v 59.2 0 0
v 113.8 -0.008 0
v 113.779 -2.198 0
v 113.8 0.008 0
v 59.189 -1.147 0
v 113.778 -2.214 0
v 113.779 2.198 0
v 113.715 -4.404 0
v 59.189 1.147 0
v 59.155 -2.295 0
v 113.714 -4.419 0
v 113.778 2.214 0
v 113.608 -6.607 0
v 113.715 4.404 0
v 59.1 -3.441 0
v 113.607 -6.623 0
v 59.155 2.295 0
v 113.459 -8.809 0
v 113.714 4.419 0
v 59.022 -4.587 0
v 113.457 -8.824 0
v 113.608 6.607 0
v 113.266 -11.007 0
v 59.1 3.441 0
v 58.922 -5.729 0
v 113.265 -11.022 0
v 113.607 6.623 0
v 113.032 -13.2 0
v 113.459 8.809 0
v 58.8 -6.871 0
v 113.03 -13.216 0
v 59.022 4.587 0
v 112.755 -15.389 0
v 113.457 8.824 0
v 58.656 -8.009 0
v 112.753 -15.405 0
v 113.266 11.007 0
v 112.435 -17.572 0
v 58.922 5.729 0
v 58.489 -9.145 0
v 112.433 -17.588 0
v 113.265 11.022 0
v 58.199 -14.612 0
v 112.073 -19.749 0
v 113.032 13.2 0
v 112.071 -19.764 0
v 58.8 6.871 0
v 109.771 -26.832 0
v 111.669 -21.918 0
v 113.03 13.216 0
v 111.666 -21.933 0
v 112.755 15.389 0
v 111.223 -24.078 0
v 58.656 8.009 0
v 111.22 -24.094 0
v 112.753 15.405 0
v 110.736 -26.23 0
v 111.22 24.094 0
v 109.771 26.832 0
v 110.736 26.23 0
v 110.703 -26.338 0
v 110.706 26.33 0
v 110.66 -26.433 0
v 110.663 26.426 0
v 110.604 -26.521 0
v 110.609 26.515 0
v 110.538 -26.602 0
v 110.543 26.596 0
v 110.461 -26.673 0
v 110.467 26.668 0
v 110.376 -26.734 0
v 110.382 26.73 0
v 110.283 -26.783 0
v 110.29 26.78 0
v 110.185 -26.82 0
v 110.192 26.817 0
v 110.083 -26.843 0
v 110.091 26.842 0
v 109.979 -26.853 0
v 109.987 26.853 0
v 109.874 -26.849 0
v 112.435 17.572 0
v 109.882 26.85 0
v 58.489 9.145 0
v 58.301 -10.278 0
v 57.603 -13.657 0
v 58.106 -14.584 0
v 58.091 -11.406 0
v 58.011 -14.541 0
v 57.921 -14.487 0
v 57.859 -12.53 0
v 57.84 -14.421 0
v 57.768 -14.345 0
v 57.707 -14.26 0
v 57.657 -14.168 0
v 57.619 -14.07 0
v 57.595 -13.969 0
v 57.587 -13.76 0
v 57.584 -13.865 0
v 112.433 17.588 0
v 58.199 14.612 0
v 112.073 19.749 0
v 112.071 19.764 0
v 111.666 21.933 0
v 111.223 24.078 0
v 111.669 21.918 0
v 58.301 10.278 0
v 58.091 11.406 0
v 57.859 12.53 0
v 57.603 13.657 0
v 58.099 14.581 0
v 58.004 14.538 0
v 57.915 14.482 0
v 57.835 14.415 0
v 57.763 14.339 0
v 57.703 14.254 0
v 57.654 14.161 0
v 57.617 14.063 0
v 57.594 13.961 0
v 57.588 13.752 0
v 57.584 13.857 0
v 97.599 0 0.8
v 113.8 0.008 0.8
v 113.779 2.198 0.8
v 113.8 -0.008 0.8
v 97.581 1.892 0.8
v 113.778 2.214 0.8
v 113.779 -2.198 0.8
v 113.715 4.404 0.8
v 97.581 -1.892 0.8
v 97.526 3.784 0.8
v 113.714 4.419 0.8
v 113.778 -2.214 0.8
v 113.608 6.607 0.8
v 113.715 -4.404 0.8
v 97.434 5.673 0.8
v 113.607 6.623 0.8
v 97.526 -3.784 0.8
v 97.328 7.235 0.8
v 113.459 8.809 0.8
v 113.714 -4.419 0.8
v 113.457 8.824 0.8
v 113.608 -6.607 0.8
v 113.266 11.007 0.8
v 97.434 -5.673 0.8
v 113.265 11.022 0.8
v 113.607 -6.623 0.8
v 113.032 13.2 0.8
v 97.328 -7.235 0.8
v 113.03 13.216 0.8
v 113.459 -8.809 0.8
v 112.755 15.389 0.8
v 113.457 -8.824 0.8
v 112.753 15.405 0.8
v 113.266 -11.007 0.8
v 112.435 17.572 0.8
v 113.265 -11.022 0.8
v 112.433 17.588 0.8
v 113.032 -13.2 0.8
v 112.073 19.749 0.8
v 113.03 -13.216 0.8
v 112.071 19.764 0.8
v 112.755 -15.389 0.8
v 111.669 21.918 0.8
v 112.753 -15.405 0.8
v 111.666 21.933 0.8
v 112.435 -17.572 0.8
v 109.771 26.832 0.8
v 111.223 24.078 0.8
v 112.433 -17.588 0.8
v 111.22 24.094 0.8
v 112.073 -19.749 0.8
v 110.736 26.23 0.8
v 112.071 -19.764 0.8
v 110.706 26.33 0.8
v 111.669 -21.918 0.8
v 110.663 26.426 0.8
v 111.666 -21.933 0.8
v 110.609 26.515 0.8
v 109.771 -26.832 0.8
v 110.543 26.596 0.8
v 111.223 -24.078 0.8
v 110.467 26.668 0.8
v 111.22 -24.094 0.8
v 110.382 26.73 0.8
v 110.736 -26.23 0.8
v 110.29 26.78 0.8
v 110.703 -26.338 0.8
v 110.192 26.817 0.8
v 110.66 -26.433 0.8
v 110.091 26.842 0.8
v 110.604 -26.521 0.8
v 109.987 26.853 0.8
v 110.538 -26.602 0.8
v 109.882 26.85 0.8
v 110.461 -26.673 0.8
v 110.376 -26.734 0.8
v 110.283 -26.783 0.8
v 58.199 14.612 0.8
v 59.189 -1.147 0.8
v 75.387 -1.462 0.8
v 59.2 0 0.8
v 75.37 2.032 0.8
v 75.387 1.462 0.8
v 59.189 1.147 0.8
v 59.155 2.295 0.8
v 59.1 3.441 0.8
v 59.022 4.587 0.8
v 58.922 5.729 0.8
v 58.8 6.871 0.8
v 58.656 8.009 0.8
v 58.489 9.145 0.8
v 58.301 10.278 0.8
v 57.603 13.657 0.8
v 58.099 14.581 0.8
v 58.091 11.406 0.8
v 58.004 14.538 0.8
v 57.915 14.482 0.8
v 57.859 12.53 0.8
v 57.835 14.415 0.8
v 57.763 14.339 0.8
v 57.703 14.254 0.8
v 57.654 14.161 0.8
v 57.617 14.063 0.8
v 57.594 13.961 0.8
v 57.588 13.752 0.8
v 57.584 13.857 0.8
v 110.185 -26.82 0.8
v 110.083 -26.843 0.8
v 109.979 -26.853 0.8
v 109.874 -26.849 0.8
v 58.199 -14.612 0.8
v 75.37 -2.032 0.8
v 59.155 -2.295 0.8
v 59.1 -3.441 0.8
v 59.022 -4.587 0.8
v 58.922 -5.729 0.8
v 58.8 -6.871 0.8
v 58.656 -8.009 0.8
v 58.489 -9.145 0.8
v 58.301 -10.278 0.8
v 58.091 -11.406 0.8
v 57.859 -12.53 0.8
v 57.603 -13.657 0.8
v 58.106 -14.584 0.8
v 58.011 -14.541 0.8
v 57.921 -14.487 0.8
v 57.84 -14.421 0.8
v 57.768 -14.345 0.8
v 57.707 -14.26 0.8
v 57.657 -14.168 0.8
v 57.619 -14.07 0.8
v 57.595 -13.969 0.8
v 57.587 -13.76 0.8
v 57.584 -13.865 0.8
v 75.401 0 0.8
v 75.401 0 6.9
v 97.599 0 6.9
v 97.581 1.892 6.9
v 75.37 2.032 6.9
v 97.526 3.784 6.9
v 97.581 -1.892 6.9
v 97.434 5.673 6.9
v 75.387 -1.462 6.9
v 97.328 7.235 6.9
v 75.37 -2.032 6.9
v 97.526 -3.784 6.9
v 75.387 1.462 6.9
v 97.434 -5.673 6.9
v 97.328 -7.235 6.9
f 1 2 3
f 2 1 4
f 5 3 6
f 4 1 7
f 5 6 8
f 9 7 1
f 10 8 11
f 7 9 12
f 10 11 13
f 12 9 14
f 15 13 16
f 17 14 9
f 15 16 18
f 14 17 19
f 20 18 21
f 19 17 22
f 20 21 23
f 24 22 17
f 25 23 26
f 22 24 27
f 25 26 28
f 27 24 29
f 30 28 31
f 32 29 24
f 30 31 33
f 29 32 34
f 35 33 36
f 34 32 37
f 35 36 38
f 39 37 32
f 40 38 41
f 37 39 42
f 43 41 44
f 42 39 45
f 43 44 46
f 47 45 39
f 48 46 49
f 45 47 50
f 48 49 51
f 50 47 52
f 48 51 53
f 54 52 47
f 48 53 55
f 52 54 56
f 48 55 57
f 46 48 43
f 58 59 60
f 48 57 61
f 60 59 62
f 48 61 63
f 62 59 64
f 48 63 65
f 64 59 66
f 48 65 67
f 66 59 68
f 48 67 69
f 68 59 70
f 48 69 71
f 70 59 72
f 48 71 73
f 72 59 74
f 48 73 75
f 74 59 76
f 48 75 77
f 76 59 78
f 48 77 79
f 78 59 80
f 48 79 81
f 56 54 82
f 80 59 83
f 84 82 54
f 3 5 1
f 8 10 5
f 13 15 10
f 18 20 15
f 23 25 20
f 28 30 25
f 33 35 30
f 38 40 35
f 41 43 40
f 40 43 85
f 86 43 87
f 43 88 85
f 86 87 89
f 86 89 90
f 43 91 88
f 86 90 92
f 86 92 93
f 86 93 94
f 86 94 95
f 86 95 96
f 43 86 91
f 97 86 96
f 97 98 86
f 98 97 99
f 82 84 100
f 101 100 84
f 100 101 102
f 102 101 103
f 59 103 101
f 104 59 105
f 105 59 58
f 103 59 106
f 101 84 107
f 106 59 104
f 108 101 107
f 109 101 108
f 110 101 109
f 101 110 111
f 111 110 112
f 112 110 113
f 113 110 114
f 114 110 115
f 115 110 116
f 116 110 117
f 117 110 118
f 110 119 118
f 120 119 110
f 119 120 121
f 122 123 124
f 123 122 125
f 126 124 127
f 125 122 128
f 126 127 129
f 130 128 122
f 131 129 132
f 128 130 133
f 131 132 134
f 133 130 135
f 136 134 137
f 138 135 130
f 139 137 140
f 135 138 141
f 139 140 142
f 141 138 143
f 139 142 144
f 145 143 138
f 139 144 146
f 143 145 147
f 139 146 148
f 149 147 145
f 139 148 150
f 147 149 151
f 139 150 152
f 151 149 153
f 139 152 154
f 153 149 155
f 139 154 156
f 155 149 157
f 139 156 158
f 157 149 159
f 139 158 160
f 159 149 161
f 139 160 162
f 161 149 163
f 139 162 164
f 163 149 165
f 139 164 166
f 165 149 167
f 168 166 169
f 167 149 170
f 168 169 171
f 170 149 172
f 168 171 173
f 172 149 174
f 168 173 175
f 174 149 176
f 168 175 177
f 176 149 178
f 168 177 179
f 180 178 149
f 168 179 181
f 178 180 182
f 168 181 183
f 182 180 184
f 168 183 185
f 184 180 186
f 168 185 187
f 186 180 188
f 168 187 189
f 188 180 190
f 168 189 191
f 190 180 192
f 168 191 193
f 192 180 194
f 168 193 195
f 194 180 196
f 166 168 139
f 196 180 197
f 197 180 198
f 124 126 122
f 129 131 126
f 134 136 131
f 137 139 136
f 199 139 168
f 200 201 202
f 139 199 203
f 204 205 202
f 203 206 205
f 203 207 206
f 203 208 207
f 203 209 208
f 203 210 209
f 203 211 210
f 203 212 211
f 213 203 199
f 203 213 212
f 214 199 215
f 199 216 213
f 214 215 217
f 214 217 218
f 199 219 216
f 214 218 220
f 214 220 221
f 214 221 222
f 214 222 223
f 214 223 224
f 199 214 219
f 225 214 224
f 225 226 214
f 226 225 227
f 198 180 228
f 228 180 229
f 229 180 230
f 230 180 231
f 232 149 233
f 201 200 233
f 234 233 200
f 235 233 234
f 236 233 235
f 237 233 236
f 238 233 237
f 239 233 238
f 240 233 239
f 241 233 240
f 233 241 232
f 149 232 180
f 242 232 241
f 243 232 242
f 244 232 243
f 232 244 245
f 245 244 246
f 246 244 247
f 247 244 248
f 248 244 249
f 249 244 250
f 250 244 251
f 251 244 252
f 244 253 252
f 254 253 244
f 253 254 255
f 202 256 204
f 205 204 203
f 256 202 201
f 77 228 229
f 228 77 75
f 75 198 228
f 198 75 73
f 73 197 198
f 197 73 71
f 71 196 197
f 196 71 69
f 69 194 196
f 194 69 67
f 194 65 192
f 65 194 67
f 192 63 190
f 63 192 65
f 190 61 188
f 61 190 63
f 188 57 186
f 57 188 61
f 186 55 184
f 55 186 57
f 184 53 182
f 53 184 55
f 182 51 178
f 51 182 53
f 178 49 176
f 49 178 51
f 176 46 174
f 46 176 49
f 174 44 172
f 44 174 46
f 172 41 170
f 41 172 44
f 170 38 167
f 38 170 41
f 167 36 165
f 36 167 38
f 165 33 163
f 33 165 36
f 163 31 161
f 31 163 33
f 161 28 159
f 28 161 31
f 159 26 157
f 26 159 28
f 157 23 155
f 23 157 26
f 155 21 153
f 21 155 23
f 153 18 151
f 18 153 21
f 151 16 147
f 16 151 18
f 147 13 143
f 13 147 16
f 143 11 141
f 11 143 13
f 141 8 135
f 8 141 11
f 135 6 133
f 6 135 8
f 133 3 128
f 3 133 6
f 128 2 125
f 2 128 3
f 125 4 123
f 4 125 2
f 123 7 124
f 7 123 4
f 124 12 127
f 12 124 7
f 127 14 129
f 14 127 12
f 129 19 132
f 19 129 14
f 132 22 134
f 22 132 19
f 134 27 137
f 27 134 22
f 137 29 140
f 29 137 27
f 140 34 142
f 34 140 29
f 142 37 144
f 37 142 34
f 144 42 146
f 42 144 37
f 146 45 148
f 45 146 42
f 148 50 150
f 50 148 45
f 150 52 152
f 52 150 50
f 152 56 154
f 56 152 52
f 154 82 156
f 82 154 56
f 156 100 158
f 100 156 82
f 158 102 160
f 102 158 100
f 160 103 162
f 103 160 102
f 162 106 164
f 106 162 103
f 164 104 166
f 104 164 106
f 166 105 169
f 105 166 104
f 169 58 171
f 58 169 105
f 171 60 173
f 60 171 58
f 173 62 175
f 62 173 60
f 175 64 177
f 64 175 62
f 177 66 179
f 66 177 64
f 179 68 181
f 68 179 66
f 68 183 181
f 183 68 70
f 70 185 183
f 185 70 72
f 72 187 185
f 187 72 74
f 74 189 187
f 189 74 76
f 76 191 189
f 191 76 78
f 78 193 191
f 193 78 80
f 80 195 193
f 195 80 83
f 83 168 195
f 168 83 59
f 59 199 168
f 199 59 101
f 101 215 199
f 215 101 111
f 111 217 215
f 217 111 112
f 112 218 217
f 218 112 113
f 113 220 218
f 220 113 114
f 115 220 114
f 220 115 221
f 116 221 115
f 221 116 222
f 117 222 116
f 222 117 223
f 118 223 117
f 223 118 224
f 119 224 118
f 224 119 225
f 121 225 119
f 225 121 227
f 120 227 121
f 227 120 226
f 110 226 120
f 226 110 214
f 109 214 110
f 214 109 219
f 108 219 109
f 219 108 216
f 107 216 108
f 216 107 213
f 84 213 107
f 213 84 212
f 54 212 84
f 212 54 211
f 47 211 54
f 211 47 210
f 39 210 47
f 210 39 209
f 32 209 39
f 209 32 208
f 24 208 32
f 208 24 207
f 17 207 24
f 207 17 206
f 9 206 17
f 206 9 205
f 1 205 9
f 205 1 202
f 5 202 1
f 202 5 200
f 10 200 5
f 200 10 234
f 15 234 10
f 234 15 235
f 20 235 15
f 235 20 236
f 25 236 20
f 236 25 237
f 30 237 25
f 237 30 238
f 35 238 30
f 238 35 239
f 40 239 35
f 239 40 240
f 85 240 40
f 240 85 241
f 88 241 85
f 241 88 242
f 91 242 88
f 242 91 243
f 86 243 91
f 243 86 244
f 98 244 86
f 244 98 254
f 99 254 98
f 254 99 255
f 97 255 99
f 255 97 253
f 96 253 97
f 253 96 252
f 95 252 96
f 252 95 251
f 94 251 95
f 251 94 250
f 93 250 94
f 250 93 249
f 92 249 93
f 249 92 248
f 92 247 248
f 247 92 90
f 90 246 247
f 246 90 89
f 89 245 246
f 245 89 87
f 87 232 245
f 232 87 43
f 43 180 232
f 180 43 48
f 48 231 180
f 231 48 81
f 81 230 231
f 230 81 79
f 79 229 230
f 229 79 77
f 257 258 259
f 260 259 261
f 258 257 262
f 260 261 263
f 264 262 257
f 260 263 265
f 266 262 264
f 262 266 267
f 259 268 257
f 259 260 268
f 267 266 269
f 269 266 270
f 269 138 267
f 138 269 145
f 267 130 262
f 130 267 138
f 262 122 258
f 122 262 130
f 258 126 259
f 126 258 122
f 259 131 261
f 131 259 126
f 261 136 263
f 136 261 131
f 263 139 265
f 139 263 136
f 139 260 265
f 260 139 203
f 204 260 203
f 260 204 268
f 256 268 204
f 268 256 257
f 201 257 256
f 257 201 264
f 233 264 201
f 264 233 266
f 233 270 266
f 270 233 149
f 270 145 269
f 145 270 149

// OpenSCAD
// Gen-DB — bobbin BASE (bottom flange + hub). Print x12, flange down. Wind 24 AWG x 257 t around
// the hub with the LID glued on (coil_lid.stl). Copper lives ONLY between the flanges (no proud winds).
include <parameters.scad>;
$fn = 48;
module sector_2d(r_in, r_out, ang) {
    polygon([
        for (a = [-ang/2 : ang/24 : ang/2]) [r_in*cos(a), r_in*sin(a)],
        for (a = [ang/2 : -ang/24 : -ang/2]) [r_out*cos(a), r_out*sin(a)]
    ]);
}
module footprint_2d() { offset(r=wall) sector_2d(coil_id_r, coil_od_r, span_deg); }
module hub_2d()       { offset(delta=-coil_core_inset) sector_2d(coil_id_r, coil_od_r, span_deg); }

union() {
    linear_extrude(flange_t) footprint_2d();
    translate([0, 0, flange_t - 0.01]) linear_extrude(former_web + 0.01) hub_2d();
}
